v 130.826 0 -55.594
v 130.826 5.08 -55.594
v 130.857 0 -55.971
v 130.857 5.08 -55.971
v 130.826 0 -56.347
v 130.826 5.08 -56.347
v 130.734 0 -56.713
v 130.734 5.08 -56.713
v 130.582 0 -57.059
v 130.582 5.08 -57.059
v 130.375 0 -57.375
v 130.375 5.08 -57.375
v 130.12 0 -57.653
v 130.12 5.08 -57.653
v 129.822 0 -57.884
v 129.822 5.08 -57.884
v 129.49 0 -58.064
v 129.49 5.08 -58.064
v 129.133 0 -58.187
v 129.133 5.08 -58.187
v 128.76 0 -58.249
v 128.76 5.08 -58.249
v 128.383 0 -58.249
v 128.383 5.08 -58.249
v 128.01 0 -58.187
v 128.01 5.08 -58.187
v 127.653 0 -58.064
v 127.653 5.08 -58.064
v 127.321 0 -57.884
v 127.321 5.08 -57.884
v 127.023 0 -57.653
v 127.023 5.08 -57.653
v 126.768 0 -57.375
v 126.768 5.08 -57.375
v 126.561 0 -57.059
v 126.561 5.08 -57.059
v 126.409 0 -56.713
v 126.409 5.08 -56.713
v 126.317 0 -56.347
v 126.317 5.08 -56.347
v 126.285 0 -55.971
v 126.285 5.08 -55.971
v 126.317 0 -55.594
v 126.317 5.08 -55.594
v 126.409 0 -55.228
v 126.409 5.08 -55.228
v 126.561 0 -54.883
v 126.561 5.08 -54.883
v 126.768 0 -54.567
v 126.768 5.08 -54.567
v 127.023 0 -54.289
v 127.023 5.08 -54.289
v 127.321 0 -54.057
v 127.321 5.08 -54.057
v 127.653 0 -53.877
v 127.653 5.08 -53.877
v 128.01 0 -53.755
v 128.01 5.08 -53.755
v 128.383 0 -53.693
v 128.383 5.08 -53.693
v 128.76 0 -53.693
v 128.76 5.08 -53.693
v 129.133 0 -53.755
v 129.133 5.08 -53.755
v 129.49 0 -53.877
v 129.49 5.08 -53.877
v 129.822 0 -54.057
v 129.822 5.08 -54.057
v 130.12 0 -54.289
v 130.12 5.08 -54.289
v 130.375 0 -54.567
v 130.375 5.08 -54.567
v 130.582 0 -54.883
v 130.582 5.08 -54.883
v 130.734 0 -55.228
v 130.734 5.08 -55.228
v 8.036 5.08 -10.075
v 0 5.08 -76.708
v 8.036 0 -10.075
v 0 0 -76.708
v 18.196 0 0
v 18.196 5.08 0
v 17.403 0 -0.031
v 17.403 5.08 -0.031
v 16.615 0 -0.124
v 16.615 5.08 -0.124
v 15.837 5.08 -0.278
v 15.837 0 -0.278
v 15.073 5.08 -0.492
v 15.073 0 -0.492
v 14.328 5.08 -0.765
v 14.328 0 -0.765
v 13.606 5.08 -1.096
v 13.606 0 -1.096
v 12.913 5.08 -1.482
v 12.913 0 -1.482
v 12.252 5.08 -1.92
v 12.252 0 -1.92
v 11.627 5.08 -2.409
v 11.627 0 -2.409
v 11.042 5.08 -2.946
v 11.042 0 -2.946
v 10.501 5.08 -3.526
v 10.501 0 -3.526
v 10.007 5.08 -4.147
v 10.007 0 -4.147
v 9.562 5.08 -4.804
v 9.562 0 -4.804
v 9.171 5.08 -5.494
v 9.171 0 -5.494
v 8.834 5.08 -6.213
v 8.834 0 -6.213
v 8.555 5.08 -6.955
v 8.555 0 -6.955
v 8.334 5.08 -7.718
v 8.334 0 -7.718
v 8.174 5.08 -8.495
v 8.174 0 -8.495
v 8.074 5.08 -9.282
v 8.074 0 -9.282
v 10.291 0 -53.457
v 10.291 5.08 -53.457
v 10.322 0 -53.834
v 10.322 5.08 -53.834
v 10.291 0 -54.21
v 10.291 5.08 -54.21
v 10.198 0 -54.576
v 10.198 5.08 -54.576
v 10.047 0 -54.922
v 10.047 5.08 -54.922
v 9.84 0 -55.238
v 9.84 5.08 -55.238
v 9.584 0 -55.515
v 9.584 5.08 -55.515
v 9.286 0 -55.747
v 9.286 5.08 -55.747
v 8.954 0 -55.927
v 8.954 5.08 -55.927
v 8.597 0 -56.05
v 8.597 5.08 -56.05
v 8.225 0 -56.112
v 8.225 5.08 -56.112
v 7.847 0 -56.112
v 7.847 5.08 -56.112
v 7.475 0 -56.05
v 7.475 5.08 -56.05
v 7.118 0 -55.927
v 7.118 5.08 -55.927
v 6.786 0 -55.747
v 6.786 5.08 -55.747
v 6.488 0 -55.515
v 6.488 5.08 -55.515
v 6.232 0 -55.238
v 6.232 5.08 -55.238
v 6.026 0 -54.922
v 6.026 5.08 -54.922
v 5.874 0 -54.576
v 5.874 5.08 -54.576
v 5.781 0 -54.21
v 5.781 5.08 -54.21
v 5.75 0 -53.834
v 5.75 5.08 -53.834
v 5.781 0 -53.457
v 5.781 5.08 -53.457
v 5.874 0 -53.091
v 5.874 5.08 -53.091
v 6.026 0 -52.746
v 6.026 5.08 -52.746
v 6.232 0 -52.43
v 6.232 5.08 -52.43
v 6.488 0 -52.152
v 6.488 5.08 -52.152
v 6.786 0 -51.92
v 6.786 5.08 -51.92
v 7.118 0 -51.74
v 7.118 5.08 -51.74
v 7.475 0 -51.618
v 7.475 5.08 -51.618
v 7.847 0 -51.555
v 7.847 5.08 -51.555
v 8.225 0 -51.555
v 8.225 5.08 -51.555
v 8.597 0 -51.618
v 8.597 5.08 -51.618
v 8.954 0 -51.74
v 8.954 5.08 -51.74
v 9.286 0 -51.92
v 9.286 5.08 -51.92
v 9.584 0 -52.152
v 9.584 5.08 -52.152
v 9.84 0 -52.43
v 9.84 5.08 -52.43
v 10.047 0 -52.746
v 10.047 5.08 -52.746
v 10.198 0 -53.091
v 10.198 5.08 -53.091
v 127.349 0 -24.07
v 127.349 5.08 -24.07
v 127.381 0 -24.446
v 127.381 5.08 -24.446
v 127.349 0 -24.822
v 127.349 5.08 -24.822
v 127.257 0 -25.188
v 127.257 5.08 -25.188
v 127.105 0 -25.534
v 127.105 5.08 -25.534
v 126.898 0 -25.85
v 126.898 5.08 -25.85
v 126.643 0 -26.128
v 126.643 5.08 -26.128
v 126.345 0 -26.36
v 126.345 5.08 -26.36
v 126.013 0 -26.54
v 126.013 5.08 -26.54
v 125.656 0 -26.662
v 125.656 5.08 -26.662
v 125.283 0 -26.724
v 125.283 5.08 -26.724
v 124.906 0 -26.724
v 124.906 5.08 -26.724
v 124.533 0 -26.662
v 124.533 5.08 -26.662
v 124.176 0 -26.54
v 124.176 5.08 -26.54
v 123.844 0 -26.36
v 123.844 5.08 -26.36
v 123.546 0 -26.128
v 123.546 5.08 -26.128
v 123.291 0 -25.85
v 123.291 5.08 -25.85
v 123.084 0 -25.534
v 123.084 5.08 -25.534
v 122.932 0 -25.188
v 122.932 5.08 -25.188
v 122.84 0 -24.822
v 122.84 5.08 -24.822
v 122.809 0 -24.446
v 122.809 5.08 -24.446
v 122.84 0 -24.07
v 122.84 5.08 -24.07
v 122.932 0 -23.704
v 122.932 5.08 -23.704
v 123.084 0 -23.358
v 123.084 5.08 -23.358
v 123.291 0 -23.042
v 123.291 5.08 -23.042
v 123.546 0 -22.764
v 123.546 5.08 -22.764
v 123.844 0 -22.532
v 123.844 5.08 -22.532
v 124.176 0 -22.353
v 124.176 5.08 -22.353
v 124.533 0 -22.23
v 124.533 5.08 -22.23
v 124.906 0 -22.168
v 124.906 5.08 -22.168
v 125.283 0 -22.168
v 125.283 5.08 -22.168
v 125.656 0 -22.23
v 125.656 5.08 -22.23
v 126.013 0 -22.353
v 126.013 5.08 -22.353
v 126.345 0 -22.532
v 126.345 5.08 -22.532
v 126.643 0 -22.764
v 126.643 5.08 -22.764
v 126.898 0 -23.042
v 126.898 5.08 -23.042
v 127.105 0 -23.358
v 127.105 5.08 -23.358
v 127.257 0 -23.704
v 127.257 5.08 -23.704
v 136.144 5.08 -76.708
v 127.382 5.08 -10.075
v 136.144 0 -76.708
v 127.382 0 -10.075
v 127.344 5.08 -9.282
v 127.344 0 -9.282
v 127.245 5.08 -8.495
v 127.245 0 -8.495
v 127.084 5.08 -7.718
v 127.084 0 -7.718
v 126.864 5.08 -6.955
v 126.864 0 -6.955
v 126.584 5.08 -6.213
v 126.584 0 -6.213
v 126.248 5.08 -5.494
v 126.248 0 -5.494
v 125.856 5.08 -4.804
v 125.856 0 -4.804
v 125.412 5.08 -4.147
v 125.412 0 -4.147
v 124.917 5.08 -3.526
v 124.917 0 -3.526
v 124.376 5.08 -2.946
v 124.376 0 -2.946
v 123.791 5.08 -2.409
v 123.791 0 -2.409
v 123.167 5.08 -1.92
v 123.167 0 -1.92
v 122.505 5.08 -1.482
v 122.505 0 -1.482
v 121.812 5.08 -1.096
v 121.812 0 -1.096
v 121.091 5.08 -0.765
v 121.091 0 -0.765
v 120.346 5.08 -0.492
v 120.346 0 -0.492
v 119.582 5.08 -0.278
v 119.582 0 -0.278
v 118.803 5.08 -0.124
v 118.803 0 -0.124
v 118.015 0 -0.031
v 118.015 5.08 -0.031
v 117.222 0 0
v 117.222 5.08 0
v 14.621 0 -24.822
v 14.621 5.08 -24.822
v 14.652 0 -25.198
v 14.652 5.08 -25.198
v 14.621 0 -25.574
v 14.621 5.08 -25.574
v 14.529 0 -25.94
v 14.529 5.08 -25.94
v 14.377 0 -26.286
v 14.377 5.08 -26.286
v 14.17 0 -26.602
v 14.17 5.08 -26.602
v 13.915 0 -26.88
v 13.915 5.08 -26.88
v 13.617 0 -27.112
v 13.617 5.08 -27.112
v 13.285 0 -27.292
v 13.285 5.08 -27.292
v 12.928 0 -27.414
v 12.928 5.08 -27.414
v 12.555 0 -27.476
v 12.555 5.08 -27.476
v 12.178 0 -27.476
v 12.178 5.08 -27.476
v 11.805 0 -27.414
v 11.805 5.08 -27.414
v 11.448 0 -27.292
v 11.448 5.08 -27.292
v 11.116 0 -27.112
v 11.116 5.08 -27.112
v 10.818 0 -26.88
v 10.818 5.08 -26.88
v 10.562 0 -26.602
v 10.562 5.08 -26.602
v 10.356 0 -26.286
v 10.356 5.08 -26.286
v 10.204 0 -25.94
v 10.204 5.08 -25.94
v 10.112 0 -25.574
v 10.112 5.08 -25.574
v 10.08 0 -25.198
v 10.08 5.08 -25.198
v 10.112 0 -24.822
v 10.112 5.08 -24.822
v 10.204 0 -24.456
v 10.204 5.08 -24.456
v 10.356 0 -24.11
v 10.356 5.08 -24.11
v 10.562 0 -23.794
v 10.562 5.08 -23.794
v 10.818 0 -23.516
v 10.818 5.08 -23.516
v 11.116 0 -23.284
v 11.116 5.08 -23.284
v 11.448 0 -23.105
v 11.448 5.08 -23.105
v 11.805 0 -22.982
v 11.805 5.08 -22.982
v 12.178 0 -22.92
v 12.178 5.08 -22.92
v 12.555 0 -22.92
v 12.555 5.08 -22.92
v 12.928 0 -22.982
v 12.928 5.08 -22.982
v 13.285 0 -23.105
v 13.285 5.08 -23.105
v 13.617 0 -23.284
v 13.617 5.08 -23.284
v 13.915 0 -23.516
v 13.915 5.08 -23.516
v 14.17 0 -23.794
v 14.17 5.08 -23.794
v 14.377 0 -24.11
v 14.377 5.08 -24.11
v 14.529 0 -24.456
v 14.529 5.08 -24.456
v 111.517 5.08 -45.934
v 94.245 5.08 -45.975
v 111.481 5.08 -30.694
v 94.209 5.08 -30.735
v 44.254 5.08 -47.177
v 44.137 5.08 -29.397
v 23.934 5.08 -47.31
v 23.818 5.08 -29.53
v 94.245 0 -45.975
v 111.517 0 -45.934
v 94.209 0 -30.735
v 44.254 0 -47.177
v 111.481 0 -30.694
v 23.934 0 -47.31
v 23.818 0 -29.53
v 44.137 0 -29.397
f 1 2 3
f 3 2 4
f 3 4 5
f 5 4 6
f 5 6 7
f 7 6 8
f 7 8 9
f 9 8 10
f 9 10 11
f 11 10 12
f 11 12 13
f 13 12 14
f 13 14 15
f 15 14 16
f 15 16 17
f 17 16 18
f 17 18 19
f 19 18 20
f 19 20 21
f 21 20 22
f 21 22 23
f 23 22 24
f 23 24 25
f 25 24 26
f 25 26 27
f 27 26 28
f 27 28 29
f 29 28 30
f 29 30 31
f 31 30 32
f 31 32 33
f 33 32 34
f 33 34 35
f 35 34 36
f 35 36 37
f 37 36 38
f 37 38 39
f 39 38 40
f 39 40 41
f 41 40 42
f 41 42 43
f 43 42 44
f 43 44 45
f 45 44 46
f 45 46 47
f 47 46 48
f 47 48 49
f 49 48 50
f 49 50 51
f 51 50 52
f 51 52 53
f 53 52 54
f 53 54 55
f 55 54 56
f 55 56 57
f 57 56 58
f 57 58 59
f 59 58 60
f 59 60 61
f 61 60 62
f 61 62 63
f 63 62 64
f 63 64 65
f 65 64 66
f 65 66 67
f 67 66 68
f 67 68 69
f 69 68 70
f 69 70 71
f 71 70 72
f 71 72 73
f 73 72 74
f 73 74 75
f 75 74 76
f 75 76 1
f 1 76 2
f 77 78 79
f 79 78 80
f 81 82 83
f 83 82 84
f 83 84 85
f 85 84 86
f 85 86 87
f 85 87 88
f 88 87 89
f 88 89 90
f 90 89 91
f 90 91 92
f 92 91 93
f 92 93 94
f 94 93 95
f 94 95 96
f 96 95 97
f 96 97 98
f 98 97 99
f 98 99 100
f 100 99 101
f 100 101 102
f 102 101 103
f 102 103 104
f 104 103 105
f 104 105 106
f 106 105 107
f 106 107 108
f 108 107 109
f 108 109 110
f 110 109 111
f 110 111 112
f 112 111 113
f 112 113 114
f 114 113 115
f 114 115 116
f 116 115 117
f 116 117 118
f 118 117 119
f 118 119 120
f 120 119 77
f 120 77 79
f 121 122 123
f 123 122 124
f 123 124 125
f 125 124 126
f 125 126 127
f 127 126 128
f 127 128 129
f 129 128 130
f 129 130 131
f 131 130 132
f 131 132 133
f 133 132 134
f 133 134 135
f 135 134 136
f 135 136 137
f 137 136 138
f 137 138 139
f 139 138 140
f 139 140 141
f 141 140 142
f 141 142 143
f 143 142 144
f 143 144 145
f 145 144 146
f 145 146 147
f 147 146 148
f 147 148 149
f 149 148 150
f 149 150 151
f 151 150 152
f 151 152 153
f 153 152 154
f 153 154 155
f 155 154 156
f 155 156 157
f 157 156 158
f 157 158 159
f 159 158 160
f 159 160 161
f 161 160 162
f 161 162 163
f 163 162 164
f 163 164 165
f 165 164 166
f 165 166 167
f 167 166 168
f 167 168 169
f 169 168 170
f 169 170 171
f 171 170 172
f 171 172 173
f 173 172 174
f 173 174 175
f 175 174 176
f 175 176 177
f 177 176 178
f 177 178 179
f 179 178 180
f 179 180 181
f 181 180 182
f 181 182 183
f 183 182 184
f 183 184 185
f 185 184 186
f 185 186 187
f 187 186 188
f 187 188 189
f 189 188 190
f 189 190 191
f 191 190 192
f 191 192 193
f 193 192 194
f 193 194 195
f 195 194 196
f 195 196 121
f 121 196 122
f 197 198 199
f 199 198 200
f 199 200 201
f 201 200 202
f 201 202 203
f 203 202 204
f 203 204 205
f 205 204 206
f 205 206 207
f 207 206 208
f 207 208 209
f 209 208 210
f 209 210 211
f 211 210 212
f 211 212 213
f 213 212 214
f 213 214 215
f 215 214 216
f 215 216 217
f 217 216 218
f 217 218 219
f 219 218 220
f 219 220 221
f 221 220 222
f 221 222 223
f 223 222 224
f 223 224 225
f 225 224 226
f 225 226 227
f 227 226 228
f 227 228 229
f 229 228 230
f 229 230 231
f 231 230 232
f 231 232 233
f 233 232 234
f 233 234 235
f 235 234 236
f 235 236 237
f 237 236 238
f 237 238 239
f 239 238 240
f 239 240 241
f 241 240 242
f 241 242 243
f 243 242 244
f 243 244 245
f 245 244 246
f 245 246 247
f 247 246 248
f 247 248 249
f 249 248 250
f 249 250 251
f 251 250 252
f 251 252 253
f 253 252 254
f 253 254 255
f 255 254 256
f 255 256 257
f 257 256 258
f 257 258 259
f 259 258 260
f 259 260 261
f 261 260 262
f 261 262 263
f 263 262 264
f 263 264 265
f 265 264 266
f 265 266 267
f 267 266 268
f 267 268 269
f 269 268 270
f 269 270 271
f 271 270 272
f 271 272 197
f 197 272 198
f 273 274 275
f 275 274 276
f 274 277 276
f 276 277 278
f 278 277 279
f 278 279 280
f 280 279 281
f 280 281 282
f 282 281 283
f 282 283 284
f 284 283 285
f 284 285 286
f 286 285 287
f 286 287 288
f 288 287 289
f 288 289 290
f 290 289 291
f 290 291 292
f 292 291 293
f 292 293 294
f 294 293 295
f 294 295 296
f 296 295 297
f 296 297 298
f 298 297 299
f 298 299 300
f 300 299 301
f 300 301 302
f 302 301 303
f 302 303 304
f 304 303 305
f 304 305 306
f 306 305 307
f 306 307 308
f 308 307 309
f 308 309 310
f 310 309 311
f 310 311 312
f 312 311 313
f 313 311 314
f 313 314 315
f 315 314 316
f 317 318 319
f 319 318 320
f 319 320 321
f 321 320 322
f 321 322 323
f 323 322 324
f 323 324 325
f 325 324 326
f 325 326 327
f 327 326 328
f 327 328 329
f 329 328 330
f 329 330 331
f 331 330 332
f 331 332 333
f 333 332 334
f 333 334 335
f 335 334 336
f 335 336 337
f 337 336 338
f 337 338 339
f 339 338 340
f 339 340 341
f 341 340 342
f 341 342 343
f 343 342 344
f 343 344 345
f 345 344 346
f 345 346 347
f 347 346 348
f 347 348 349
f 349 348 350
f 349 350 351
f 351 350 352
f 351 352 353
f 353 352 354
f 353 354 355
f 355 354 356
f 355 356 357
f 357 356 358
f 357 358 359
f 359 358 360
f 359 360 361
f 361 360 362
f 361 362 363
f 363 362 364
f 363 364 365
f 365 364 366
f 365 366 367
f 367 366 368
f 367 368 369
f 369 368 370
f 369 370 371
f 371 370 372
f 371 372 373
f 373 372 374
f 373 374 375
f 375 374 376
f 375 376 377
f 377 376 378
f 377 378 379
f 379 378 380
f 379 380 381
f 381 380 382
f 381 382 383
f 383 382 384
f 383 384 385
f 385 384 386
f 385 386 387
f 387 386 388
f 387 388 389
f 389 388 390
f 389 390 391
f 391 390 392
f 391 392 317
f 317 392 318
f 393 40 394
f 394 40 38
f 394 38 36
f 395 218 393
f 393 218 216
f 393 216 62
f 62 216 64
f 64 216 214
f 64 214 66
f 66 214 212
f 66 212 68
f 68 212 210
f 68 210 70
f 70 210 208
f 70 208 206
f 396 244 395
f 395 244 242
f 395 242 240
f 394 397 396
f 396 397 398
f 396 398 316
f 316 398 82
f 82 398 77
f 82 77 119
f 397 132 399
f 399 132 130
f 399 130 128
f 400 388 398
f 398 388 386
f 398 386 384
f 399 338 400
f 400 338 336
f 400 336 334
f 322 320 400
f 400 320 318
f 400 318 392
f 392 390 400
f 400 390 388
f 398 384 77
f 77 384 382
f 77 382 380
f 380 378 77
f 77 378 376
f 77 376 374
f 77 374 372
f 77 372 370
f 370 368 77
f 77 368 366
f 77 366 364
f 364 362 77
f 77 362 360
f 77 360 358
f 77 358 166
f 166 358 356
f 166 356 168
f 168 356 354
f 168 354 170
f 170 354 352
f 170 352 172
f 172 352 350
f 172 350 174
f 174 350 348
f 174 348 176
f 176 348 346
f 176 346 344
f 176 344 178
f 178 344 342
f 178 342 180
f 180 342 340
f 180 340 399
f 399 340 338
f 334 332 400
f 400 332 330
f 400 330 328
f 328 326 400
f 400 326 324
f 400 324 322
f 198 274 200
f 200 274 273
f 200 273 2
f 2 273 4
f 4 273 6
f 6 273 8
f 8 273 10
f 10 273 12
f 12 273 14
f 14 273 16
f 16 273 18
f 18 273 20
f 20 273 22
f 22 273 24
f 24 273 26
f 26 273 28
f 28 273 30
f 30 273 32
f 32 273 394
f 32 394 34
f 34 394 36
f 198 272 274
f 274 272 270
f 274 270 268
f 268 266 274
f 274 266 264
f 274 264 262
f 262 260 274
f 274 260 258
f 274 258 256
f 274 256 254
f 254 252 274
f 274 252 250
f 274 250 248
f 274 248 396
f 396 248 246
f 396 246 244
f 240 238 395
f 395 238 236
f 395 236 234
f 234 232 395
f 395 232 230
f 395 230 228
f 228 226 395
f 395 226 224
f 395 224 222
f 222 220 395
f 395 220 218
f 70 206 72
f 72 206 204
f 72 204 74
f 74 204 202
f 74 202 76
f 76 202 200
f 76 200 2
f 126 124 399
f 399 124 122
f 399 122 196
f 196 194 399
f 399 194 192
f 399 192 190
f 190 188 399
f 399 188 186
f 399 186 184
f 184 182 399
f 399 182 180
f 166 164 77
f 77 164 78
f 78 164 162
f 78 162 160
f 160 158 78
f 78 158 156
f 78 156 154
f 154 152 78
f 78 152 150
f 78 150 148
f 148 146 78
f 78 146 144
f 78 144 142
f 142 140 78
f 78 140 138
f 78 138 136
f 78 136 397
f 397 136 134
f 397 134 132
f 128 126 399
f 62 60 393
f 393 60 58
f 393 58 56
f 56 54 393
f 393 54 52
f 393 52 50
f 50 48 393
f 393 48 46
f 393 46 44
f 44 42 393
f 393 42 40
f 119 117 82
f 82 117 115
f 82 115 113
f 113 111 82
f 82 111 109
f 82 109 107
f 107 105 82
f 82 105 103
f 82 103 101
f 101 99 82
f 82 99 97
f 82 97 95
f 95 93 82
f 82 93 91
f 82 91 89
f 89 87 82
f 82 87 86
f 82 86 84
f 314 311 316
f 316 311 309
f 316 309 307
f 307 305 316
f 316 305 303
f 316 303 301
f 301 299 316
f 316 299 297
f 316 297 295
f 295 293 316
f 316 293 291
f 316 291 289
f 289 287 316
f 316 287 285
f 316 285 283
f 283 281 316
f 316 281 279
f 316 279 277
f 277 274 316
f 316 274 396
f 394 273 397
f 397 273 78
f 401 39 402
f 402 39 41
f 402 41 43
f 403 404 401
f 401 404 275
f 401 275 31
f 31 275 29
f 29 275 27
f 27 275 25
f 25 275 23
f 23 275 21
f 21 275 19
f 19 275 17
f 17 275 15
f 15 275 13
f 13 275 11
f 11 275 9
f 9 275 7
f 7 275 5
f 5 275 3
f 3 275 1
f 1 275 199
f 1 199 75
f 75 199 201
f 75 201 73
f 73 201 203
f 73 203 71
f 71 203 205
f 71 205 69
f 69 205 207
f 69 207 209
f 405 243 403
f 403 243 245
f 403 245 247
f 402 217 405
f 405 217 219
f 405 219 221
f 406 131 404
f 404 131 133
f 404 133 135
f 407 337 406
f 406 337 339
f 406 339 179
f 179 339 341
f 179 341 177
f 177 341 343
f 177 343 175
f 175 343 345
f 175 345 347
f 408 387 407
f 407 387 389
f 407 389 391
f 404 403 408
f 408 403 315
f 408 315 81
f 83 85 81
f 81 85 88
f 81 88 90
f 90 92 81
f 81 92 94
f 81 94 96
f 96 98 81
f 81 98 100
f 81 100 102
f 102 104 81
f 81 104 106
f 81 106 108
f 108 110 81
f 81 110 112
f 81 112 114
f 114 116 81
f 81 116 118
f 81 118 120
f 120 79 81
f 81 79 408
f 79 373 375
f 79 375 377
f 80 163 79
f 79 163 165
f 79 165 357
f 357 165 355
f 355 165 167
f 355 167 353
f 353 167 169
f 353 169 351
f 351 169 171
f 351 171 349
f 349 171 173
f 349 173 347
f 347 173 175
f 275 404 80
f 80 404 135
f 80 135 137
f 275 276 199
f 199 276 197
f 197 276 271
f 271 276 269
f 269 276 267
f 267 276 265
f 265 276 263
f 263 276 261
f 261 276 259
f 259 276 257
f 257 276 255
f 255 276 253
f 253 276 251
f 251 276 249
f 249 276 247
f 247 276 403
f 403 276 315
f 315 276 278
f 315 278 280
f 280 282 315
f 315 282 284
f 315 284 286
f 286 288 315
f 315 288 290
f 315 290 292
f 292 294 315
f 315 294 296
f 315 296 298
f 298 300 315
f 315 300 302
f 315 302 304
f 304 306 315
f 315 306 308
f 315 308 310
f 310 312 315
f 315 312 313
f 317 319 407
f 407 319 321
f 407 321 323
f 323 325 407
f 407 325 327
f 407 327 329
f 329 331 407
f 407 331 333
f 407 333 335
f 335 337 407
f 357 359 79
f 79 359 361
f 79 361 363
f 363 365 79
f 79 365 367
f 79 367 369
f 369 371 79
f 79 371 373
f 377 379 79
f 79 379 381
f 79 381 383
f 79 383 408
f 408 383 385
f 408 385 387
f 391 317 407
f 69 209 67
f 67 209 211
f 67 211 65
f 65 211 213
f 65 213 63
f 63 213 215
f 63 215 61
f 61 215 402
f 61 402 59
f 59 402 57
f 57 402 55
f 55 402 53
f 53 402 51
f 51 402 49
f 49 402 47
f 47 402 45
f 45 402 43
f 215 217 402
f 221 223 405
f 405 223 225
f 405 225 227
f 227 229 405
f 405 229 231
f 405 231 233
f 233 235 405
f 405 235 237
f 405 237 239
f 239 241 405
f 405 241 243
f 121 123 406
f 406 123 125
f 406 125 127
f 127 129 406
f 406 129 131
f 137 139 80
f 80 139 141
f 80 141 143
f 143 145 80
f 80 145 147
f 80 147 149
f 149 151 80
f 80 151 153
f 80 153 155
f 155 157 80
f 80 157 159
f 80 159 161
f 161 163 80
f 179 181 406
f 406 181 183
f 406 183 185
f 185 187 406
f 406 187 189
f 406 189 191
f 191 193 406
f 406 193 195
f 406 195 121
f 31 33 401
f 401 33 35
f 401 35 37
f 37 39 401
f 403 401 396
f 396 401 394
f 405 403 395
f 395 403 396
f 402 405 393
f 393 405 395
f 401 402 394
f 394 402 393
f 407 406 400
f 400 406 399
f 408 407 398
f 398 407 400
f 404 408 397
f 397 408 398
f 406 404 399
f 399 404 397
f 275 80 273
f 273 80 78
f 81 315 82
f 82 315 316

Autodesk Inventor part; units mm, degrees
ref_plane "YZ Plane" through (0, 0, 0) normal (1, 0, 0) x (0, 1, 0)
ref_plane "XZ Plane" through (0, 0, 0) normal (0, 1, 0) x (-1, 0, 0)
ref_plane "XY Plane" through (0, 0, 0) normal (0, 0, 1) x (1, 0, 0)
sketch "Sketch1" plane through (0, 0, 0) normal (0, 1, 0) x (-1, 0, 0)
  line L0 (0, 0) -> (-136.144, 0)
  line L1 (-136.144, 0) -> (-136.144, -76.708)
  line L2 (-136.144, -76.708) -> (0, -76.708)
  line L3 (0, -76.708) -> (0, 0)
  line L4 (-23.9341, -47.3101) -> (-44.2537, -47.1769)
  line L5 (-44.2537, -47.1769) -> (-44.1372, -29.3973)
  line L6 (-44.1372, -29.3973) -> (-23.8176, -29.5304)
  line L7 (-23.8176, -29.5304) -> (-23.9341, -47.3101)
  line L8 (-94.2086, -30.7353) -> (-94.2453, -45.9753)
  line L9 (-94.2453, -45.9753) -> (-111.5172, -45.9338)
  line L10 (-111.5172, -45.9338) -> (-111.4806, -30.6938)
  line L11 (-111.4806, -30.6938) -> (-94.2086, -30.7353)
  line L12 (-68.072, -76.708) -> (-68.072, 0)
  line L13 (-136.144, -76.708) -> (-68.072, -76.708)
  line L14 (-102.108, -76.708) -> (-103.5543, 0)
  line L15 (-111.4806, -30.6938) -> (-94.2453, -45.9753)
  line L16 (-94.2086, -30.7353) -> (-111.5172, -45.9338)
  line L17 (-44.1372, -29.3973) -> (-23.9341, -47.3101)
  line L18 (-44.2537, -47.1769) -> (-23.8176, -29.5304)
  line L19 (-68.072, -76.708) -> (0, -76.708)
  line L20 (-34.036, -76.708) -> (-34.036, 0)
  line L21 (-68.072, -38.354) -> (0, -38.354)
  line L22 (-68.072, -38.354) -> (-136.144, -38.354)
  dimension "d0" = 136.144
  dimension "d1" = 76.708
  dimension "d2" = 20.32
  dimension "d3" = 17.78
  dimension "d4" = 15.24
  dimension "d6" = 17.272
extrude "Extrusion1" add sketch "Sketch1" along normal blind 5.08 contours L3 L21 L7 L6 L20 L0 | L20 L6 L5 L21 L12 L0 | L3 L2 L20 L4 L7 L21 | L12 L22 L8 L11 L14 L0 | L14 L11 L10 L22 L1 L0 | L21 L5 L4 L20 L2 L12 | L12 L2 L14 L9 L8 L22 | L22 L10 L9 L14 L2 L1
sketch "Sketch2" plane through (0, 5.08, 0) normal (0, 1, 0) x (1, 0, 0)
  line L0 (0, 76.708) -> (0, 0) projected
  line L1 (0, 0) -> (136.144, 0) projected
  line L2 (136.144, 0) -> (136.144, 76.708) projected
  circle A0 centre (128.5715, 55.9707) radius 2.286
  circle A1 centre (125.0945, 24.4461) radius 2.286
  circle A2 centre (8.0361, 53.8336) radius 2.286
  circle A3 centre (12.3665, 25.1981) radius 2.286
  line L3 (127.3823, 10.0745) -> (136.144, 10.0745)
  line L4 (127.3823, 10.0745) -> (0, 10.0745)
  line L5 (0, 76.708) -> (8.0361, 10.0745)
  line L6 (136.144, 76.708) -> (127.3823, 10.0745)
  line L7 (8.0361, 10.0745) -> (8.0361, 10.16)
  line L8 (18.1961, 0) -> (117.2223, 0)
  arc A4 (8.0361, 10.16) -> (18.1961, 0) centre (18.1961, 10.16) ccw
  line L9 (127.3823, 10.0745) -> (127.3823, 10.16)
  arc A5 (117.2223, 0) -> (127.3823, 10.16) centre (117.2223, 10.16) ccw
  line L10 (0, 76.708) -> (0, 0) projected
  line L11 (0, 0) -> (136.144, 0) projected
  line L12 (136.144, 0) -> (136.144, 76.708) projected
  line L13 (136.144, 76.708) -> (0, 76.708) projected
  line L14 (23.9341, 47.3101) -> (44.2537, 47.1769) projected
  line L15 (44.2537, 47.1769) -> (44.1372, 29.3973) projected
  line L16 (44.1372, 29.3973) -> (23.8176, 29.5304) projected
  line L17 (23.8176, 29.5304) -> (23.9341, 47.3101) projected
  line L18 (94.2453, 45.9753) -> (111.5172, 45.9338) projected
  line L19 (111.5172, 45.9338) -> (111.4806, 30.6938) projected
  line L20 (111.4806, 30.6938) -> (94.2086, 30.7353) projected
  line L21 (94.2086, 30.7353) -> (94.2453, 45.9753) projected
  line L22 (125.0945, 24.4461) -> (12.3665, 25.1981)
  point P0 (8.0361, 0)
  point P1 (8.0365, 10.0745)
  point P2 (127.382, 10.0745)
  point P3 (117.2223, 0)
  dimension "d9" = 10.16
  dimension "d10" = 10.16
  dimension "d11" = 4.572
  dimension "d12" = 4.572
extrude "Extrusion2" cut sketch "Sketch2" against normal blind 5.08 contours L5 L4 L0 | L4 A4 L1 L0 | L2 L3 L6 | L3 L2 L1 A5 | A0 | A1 | A3 | A2
properties part number "chair power plate"
